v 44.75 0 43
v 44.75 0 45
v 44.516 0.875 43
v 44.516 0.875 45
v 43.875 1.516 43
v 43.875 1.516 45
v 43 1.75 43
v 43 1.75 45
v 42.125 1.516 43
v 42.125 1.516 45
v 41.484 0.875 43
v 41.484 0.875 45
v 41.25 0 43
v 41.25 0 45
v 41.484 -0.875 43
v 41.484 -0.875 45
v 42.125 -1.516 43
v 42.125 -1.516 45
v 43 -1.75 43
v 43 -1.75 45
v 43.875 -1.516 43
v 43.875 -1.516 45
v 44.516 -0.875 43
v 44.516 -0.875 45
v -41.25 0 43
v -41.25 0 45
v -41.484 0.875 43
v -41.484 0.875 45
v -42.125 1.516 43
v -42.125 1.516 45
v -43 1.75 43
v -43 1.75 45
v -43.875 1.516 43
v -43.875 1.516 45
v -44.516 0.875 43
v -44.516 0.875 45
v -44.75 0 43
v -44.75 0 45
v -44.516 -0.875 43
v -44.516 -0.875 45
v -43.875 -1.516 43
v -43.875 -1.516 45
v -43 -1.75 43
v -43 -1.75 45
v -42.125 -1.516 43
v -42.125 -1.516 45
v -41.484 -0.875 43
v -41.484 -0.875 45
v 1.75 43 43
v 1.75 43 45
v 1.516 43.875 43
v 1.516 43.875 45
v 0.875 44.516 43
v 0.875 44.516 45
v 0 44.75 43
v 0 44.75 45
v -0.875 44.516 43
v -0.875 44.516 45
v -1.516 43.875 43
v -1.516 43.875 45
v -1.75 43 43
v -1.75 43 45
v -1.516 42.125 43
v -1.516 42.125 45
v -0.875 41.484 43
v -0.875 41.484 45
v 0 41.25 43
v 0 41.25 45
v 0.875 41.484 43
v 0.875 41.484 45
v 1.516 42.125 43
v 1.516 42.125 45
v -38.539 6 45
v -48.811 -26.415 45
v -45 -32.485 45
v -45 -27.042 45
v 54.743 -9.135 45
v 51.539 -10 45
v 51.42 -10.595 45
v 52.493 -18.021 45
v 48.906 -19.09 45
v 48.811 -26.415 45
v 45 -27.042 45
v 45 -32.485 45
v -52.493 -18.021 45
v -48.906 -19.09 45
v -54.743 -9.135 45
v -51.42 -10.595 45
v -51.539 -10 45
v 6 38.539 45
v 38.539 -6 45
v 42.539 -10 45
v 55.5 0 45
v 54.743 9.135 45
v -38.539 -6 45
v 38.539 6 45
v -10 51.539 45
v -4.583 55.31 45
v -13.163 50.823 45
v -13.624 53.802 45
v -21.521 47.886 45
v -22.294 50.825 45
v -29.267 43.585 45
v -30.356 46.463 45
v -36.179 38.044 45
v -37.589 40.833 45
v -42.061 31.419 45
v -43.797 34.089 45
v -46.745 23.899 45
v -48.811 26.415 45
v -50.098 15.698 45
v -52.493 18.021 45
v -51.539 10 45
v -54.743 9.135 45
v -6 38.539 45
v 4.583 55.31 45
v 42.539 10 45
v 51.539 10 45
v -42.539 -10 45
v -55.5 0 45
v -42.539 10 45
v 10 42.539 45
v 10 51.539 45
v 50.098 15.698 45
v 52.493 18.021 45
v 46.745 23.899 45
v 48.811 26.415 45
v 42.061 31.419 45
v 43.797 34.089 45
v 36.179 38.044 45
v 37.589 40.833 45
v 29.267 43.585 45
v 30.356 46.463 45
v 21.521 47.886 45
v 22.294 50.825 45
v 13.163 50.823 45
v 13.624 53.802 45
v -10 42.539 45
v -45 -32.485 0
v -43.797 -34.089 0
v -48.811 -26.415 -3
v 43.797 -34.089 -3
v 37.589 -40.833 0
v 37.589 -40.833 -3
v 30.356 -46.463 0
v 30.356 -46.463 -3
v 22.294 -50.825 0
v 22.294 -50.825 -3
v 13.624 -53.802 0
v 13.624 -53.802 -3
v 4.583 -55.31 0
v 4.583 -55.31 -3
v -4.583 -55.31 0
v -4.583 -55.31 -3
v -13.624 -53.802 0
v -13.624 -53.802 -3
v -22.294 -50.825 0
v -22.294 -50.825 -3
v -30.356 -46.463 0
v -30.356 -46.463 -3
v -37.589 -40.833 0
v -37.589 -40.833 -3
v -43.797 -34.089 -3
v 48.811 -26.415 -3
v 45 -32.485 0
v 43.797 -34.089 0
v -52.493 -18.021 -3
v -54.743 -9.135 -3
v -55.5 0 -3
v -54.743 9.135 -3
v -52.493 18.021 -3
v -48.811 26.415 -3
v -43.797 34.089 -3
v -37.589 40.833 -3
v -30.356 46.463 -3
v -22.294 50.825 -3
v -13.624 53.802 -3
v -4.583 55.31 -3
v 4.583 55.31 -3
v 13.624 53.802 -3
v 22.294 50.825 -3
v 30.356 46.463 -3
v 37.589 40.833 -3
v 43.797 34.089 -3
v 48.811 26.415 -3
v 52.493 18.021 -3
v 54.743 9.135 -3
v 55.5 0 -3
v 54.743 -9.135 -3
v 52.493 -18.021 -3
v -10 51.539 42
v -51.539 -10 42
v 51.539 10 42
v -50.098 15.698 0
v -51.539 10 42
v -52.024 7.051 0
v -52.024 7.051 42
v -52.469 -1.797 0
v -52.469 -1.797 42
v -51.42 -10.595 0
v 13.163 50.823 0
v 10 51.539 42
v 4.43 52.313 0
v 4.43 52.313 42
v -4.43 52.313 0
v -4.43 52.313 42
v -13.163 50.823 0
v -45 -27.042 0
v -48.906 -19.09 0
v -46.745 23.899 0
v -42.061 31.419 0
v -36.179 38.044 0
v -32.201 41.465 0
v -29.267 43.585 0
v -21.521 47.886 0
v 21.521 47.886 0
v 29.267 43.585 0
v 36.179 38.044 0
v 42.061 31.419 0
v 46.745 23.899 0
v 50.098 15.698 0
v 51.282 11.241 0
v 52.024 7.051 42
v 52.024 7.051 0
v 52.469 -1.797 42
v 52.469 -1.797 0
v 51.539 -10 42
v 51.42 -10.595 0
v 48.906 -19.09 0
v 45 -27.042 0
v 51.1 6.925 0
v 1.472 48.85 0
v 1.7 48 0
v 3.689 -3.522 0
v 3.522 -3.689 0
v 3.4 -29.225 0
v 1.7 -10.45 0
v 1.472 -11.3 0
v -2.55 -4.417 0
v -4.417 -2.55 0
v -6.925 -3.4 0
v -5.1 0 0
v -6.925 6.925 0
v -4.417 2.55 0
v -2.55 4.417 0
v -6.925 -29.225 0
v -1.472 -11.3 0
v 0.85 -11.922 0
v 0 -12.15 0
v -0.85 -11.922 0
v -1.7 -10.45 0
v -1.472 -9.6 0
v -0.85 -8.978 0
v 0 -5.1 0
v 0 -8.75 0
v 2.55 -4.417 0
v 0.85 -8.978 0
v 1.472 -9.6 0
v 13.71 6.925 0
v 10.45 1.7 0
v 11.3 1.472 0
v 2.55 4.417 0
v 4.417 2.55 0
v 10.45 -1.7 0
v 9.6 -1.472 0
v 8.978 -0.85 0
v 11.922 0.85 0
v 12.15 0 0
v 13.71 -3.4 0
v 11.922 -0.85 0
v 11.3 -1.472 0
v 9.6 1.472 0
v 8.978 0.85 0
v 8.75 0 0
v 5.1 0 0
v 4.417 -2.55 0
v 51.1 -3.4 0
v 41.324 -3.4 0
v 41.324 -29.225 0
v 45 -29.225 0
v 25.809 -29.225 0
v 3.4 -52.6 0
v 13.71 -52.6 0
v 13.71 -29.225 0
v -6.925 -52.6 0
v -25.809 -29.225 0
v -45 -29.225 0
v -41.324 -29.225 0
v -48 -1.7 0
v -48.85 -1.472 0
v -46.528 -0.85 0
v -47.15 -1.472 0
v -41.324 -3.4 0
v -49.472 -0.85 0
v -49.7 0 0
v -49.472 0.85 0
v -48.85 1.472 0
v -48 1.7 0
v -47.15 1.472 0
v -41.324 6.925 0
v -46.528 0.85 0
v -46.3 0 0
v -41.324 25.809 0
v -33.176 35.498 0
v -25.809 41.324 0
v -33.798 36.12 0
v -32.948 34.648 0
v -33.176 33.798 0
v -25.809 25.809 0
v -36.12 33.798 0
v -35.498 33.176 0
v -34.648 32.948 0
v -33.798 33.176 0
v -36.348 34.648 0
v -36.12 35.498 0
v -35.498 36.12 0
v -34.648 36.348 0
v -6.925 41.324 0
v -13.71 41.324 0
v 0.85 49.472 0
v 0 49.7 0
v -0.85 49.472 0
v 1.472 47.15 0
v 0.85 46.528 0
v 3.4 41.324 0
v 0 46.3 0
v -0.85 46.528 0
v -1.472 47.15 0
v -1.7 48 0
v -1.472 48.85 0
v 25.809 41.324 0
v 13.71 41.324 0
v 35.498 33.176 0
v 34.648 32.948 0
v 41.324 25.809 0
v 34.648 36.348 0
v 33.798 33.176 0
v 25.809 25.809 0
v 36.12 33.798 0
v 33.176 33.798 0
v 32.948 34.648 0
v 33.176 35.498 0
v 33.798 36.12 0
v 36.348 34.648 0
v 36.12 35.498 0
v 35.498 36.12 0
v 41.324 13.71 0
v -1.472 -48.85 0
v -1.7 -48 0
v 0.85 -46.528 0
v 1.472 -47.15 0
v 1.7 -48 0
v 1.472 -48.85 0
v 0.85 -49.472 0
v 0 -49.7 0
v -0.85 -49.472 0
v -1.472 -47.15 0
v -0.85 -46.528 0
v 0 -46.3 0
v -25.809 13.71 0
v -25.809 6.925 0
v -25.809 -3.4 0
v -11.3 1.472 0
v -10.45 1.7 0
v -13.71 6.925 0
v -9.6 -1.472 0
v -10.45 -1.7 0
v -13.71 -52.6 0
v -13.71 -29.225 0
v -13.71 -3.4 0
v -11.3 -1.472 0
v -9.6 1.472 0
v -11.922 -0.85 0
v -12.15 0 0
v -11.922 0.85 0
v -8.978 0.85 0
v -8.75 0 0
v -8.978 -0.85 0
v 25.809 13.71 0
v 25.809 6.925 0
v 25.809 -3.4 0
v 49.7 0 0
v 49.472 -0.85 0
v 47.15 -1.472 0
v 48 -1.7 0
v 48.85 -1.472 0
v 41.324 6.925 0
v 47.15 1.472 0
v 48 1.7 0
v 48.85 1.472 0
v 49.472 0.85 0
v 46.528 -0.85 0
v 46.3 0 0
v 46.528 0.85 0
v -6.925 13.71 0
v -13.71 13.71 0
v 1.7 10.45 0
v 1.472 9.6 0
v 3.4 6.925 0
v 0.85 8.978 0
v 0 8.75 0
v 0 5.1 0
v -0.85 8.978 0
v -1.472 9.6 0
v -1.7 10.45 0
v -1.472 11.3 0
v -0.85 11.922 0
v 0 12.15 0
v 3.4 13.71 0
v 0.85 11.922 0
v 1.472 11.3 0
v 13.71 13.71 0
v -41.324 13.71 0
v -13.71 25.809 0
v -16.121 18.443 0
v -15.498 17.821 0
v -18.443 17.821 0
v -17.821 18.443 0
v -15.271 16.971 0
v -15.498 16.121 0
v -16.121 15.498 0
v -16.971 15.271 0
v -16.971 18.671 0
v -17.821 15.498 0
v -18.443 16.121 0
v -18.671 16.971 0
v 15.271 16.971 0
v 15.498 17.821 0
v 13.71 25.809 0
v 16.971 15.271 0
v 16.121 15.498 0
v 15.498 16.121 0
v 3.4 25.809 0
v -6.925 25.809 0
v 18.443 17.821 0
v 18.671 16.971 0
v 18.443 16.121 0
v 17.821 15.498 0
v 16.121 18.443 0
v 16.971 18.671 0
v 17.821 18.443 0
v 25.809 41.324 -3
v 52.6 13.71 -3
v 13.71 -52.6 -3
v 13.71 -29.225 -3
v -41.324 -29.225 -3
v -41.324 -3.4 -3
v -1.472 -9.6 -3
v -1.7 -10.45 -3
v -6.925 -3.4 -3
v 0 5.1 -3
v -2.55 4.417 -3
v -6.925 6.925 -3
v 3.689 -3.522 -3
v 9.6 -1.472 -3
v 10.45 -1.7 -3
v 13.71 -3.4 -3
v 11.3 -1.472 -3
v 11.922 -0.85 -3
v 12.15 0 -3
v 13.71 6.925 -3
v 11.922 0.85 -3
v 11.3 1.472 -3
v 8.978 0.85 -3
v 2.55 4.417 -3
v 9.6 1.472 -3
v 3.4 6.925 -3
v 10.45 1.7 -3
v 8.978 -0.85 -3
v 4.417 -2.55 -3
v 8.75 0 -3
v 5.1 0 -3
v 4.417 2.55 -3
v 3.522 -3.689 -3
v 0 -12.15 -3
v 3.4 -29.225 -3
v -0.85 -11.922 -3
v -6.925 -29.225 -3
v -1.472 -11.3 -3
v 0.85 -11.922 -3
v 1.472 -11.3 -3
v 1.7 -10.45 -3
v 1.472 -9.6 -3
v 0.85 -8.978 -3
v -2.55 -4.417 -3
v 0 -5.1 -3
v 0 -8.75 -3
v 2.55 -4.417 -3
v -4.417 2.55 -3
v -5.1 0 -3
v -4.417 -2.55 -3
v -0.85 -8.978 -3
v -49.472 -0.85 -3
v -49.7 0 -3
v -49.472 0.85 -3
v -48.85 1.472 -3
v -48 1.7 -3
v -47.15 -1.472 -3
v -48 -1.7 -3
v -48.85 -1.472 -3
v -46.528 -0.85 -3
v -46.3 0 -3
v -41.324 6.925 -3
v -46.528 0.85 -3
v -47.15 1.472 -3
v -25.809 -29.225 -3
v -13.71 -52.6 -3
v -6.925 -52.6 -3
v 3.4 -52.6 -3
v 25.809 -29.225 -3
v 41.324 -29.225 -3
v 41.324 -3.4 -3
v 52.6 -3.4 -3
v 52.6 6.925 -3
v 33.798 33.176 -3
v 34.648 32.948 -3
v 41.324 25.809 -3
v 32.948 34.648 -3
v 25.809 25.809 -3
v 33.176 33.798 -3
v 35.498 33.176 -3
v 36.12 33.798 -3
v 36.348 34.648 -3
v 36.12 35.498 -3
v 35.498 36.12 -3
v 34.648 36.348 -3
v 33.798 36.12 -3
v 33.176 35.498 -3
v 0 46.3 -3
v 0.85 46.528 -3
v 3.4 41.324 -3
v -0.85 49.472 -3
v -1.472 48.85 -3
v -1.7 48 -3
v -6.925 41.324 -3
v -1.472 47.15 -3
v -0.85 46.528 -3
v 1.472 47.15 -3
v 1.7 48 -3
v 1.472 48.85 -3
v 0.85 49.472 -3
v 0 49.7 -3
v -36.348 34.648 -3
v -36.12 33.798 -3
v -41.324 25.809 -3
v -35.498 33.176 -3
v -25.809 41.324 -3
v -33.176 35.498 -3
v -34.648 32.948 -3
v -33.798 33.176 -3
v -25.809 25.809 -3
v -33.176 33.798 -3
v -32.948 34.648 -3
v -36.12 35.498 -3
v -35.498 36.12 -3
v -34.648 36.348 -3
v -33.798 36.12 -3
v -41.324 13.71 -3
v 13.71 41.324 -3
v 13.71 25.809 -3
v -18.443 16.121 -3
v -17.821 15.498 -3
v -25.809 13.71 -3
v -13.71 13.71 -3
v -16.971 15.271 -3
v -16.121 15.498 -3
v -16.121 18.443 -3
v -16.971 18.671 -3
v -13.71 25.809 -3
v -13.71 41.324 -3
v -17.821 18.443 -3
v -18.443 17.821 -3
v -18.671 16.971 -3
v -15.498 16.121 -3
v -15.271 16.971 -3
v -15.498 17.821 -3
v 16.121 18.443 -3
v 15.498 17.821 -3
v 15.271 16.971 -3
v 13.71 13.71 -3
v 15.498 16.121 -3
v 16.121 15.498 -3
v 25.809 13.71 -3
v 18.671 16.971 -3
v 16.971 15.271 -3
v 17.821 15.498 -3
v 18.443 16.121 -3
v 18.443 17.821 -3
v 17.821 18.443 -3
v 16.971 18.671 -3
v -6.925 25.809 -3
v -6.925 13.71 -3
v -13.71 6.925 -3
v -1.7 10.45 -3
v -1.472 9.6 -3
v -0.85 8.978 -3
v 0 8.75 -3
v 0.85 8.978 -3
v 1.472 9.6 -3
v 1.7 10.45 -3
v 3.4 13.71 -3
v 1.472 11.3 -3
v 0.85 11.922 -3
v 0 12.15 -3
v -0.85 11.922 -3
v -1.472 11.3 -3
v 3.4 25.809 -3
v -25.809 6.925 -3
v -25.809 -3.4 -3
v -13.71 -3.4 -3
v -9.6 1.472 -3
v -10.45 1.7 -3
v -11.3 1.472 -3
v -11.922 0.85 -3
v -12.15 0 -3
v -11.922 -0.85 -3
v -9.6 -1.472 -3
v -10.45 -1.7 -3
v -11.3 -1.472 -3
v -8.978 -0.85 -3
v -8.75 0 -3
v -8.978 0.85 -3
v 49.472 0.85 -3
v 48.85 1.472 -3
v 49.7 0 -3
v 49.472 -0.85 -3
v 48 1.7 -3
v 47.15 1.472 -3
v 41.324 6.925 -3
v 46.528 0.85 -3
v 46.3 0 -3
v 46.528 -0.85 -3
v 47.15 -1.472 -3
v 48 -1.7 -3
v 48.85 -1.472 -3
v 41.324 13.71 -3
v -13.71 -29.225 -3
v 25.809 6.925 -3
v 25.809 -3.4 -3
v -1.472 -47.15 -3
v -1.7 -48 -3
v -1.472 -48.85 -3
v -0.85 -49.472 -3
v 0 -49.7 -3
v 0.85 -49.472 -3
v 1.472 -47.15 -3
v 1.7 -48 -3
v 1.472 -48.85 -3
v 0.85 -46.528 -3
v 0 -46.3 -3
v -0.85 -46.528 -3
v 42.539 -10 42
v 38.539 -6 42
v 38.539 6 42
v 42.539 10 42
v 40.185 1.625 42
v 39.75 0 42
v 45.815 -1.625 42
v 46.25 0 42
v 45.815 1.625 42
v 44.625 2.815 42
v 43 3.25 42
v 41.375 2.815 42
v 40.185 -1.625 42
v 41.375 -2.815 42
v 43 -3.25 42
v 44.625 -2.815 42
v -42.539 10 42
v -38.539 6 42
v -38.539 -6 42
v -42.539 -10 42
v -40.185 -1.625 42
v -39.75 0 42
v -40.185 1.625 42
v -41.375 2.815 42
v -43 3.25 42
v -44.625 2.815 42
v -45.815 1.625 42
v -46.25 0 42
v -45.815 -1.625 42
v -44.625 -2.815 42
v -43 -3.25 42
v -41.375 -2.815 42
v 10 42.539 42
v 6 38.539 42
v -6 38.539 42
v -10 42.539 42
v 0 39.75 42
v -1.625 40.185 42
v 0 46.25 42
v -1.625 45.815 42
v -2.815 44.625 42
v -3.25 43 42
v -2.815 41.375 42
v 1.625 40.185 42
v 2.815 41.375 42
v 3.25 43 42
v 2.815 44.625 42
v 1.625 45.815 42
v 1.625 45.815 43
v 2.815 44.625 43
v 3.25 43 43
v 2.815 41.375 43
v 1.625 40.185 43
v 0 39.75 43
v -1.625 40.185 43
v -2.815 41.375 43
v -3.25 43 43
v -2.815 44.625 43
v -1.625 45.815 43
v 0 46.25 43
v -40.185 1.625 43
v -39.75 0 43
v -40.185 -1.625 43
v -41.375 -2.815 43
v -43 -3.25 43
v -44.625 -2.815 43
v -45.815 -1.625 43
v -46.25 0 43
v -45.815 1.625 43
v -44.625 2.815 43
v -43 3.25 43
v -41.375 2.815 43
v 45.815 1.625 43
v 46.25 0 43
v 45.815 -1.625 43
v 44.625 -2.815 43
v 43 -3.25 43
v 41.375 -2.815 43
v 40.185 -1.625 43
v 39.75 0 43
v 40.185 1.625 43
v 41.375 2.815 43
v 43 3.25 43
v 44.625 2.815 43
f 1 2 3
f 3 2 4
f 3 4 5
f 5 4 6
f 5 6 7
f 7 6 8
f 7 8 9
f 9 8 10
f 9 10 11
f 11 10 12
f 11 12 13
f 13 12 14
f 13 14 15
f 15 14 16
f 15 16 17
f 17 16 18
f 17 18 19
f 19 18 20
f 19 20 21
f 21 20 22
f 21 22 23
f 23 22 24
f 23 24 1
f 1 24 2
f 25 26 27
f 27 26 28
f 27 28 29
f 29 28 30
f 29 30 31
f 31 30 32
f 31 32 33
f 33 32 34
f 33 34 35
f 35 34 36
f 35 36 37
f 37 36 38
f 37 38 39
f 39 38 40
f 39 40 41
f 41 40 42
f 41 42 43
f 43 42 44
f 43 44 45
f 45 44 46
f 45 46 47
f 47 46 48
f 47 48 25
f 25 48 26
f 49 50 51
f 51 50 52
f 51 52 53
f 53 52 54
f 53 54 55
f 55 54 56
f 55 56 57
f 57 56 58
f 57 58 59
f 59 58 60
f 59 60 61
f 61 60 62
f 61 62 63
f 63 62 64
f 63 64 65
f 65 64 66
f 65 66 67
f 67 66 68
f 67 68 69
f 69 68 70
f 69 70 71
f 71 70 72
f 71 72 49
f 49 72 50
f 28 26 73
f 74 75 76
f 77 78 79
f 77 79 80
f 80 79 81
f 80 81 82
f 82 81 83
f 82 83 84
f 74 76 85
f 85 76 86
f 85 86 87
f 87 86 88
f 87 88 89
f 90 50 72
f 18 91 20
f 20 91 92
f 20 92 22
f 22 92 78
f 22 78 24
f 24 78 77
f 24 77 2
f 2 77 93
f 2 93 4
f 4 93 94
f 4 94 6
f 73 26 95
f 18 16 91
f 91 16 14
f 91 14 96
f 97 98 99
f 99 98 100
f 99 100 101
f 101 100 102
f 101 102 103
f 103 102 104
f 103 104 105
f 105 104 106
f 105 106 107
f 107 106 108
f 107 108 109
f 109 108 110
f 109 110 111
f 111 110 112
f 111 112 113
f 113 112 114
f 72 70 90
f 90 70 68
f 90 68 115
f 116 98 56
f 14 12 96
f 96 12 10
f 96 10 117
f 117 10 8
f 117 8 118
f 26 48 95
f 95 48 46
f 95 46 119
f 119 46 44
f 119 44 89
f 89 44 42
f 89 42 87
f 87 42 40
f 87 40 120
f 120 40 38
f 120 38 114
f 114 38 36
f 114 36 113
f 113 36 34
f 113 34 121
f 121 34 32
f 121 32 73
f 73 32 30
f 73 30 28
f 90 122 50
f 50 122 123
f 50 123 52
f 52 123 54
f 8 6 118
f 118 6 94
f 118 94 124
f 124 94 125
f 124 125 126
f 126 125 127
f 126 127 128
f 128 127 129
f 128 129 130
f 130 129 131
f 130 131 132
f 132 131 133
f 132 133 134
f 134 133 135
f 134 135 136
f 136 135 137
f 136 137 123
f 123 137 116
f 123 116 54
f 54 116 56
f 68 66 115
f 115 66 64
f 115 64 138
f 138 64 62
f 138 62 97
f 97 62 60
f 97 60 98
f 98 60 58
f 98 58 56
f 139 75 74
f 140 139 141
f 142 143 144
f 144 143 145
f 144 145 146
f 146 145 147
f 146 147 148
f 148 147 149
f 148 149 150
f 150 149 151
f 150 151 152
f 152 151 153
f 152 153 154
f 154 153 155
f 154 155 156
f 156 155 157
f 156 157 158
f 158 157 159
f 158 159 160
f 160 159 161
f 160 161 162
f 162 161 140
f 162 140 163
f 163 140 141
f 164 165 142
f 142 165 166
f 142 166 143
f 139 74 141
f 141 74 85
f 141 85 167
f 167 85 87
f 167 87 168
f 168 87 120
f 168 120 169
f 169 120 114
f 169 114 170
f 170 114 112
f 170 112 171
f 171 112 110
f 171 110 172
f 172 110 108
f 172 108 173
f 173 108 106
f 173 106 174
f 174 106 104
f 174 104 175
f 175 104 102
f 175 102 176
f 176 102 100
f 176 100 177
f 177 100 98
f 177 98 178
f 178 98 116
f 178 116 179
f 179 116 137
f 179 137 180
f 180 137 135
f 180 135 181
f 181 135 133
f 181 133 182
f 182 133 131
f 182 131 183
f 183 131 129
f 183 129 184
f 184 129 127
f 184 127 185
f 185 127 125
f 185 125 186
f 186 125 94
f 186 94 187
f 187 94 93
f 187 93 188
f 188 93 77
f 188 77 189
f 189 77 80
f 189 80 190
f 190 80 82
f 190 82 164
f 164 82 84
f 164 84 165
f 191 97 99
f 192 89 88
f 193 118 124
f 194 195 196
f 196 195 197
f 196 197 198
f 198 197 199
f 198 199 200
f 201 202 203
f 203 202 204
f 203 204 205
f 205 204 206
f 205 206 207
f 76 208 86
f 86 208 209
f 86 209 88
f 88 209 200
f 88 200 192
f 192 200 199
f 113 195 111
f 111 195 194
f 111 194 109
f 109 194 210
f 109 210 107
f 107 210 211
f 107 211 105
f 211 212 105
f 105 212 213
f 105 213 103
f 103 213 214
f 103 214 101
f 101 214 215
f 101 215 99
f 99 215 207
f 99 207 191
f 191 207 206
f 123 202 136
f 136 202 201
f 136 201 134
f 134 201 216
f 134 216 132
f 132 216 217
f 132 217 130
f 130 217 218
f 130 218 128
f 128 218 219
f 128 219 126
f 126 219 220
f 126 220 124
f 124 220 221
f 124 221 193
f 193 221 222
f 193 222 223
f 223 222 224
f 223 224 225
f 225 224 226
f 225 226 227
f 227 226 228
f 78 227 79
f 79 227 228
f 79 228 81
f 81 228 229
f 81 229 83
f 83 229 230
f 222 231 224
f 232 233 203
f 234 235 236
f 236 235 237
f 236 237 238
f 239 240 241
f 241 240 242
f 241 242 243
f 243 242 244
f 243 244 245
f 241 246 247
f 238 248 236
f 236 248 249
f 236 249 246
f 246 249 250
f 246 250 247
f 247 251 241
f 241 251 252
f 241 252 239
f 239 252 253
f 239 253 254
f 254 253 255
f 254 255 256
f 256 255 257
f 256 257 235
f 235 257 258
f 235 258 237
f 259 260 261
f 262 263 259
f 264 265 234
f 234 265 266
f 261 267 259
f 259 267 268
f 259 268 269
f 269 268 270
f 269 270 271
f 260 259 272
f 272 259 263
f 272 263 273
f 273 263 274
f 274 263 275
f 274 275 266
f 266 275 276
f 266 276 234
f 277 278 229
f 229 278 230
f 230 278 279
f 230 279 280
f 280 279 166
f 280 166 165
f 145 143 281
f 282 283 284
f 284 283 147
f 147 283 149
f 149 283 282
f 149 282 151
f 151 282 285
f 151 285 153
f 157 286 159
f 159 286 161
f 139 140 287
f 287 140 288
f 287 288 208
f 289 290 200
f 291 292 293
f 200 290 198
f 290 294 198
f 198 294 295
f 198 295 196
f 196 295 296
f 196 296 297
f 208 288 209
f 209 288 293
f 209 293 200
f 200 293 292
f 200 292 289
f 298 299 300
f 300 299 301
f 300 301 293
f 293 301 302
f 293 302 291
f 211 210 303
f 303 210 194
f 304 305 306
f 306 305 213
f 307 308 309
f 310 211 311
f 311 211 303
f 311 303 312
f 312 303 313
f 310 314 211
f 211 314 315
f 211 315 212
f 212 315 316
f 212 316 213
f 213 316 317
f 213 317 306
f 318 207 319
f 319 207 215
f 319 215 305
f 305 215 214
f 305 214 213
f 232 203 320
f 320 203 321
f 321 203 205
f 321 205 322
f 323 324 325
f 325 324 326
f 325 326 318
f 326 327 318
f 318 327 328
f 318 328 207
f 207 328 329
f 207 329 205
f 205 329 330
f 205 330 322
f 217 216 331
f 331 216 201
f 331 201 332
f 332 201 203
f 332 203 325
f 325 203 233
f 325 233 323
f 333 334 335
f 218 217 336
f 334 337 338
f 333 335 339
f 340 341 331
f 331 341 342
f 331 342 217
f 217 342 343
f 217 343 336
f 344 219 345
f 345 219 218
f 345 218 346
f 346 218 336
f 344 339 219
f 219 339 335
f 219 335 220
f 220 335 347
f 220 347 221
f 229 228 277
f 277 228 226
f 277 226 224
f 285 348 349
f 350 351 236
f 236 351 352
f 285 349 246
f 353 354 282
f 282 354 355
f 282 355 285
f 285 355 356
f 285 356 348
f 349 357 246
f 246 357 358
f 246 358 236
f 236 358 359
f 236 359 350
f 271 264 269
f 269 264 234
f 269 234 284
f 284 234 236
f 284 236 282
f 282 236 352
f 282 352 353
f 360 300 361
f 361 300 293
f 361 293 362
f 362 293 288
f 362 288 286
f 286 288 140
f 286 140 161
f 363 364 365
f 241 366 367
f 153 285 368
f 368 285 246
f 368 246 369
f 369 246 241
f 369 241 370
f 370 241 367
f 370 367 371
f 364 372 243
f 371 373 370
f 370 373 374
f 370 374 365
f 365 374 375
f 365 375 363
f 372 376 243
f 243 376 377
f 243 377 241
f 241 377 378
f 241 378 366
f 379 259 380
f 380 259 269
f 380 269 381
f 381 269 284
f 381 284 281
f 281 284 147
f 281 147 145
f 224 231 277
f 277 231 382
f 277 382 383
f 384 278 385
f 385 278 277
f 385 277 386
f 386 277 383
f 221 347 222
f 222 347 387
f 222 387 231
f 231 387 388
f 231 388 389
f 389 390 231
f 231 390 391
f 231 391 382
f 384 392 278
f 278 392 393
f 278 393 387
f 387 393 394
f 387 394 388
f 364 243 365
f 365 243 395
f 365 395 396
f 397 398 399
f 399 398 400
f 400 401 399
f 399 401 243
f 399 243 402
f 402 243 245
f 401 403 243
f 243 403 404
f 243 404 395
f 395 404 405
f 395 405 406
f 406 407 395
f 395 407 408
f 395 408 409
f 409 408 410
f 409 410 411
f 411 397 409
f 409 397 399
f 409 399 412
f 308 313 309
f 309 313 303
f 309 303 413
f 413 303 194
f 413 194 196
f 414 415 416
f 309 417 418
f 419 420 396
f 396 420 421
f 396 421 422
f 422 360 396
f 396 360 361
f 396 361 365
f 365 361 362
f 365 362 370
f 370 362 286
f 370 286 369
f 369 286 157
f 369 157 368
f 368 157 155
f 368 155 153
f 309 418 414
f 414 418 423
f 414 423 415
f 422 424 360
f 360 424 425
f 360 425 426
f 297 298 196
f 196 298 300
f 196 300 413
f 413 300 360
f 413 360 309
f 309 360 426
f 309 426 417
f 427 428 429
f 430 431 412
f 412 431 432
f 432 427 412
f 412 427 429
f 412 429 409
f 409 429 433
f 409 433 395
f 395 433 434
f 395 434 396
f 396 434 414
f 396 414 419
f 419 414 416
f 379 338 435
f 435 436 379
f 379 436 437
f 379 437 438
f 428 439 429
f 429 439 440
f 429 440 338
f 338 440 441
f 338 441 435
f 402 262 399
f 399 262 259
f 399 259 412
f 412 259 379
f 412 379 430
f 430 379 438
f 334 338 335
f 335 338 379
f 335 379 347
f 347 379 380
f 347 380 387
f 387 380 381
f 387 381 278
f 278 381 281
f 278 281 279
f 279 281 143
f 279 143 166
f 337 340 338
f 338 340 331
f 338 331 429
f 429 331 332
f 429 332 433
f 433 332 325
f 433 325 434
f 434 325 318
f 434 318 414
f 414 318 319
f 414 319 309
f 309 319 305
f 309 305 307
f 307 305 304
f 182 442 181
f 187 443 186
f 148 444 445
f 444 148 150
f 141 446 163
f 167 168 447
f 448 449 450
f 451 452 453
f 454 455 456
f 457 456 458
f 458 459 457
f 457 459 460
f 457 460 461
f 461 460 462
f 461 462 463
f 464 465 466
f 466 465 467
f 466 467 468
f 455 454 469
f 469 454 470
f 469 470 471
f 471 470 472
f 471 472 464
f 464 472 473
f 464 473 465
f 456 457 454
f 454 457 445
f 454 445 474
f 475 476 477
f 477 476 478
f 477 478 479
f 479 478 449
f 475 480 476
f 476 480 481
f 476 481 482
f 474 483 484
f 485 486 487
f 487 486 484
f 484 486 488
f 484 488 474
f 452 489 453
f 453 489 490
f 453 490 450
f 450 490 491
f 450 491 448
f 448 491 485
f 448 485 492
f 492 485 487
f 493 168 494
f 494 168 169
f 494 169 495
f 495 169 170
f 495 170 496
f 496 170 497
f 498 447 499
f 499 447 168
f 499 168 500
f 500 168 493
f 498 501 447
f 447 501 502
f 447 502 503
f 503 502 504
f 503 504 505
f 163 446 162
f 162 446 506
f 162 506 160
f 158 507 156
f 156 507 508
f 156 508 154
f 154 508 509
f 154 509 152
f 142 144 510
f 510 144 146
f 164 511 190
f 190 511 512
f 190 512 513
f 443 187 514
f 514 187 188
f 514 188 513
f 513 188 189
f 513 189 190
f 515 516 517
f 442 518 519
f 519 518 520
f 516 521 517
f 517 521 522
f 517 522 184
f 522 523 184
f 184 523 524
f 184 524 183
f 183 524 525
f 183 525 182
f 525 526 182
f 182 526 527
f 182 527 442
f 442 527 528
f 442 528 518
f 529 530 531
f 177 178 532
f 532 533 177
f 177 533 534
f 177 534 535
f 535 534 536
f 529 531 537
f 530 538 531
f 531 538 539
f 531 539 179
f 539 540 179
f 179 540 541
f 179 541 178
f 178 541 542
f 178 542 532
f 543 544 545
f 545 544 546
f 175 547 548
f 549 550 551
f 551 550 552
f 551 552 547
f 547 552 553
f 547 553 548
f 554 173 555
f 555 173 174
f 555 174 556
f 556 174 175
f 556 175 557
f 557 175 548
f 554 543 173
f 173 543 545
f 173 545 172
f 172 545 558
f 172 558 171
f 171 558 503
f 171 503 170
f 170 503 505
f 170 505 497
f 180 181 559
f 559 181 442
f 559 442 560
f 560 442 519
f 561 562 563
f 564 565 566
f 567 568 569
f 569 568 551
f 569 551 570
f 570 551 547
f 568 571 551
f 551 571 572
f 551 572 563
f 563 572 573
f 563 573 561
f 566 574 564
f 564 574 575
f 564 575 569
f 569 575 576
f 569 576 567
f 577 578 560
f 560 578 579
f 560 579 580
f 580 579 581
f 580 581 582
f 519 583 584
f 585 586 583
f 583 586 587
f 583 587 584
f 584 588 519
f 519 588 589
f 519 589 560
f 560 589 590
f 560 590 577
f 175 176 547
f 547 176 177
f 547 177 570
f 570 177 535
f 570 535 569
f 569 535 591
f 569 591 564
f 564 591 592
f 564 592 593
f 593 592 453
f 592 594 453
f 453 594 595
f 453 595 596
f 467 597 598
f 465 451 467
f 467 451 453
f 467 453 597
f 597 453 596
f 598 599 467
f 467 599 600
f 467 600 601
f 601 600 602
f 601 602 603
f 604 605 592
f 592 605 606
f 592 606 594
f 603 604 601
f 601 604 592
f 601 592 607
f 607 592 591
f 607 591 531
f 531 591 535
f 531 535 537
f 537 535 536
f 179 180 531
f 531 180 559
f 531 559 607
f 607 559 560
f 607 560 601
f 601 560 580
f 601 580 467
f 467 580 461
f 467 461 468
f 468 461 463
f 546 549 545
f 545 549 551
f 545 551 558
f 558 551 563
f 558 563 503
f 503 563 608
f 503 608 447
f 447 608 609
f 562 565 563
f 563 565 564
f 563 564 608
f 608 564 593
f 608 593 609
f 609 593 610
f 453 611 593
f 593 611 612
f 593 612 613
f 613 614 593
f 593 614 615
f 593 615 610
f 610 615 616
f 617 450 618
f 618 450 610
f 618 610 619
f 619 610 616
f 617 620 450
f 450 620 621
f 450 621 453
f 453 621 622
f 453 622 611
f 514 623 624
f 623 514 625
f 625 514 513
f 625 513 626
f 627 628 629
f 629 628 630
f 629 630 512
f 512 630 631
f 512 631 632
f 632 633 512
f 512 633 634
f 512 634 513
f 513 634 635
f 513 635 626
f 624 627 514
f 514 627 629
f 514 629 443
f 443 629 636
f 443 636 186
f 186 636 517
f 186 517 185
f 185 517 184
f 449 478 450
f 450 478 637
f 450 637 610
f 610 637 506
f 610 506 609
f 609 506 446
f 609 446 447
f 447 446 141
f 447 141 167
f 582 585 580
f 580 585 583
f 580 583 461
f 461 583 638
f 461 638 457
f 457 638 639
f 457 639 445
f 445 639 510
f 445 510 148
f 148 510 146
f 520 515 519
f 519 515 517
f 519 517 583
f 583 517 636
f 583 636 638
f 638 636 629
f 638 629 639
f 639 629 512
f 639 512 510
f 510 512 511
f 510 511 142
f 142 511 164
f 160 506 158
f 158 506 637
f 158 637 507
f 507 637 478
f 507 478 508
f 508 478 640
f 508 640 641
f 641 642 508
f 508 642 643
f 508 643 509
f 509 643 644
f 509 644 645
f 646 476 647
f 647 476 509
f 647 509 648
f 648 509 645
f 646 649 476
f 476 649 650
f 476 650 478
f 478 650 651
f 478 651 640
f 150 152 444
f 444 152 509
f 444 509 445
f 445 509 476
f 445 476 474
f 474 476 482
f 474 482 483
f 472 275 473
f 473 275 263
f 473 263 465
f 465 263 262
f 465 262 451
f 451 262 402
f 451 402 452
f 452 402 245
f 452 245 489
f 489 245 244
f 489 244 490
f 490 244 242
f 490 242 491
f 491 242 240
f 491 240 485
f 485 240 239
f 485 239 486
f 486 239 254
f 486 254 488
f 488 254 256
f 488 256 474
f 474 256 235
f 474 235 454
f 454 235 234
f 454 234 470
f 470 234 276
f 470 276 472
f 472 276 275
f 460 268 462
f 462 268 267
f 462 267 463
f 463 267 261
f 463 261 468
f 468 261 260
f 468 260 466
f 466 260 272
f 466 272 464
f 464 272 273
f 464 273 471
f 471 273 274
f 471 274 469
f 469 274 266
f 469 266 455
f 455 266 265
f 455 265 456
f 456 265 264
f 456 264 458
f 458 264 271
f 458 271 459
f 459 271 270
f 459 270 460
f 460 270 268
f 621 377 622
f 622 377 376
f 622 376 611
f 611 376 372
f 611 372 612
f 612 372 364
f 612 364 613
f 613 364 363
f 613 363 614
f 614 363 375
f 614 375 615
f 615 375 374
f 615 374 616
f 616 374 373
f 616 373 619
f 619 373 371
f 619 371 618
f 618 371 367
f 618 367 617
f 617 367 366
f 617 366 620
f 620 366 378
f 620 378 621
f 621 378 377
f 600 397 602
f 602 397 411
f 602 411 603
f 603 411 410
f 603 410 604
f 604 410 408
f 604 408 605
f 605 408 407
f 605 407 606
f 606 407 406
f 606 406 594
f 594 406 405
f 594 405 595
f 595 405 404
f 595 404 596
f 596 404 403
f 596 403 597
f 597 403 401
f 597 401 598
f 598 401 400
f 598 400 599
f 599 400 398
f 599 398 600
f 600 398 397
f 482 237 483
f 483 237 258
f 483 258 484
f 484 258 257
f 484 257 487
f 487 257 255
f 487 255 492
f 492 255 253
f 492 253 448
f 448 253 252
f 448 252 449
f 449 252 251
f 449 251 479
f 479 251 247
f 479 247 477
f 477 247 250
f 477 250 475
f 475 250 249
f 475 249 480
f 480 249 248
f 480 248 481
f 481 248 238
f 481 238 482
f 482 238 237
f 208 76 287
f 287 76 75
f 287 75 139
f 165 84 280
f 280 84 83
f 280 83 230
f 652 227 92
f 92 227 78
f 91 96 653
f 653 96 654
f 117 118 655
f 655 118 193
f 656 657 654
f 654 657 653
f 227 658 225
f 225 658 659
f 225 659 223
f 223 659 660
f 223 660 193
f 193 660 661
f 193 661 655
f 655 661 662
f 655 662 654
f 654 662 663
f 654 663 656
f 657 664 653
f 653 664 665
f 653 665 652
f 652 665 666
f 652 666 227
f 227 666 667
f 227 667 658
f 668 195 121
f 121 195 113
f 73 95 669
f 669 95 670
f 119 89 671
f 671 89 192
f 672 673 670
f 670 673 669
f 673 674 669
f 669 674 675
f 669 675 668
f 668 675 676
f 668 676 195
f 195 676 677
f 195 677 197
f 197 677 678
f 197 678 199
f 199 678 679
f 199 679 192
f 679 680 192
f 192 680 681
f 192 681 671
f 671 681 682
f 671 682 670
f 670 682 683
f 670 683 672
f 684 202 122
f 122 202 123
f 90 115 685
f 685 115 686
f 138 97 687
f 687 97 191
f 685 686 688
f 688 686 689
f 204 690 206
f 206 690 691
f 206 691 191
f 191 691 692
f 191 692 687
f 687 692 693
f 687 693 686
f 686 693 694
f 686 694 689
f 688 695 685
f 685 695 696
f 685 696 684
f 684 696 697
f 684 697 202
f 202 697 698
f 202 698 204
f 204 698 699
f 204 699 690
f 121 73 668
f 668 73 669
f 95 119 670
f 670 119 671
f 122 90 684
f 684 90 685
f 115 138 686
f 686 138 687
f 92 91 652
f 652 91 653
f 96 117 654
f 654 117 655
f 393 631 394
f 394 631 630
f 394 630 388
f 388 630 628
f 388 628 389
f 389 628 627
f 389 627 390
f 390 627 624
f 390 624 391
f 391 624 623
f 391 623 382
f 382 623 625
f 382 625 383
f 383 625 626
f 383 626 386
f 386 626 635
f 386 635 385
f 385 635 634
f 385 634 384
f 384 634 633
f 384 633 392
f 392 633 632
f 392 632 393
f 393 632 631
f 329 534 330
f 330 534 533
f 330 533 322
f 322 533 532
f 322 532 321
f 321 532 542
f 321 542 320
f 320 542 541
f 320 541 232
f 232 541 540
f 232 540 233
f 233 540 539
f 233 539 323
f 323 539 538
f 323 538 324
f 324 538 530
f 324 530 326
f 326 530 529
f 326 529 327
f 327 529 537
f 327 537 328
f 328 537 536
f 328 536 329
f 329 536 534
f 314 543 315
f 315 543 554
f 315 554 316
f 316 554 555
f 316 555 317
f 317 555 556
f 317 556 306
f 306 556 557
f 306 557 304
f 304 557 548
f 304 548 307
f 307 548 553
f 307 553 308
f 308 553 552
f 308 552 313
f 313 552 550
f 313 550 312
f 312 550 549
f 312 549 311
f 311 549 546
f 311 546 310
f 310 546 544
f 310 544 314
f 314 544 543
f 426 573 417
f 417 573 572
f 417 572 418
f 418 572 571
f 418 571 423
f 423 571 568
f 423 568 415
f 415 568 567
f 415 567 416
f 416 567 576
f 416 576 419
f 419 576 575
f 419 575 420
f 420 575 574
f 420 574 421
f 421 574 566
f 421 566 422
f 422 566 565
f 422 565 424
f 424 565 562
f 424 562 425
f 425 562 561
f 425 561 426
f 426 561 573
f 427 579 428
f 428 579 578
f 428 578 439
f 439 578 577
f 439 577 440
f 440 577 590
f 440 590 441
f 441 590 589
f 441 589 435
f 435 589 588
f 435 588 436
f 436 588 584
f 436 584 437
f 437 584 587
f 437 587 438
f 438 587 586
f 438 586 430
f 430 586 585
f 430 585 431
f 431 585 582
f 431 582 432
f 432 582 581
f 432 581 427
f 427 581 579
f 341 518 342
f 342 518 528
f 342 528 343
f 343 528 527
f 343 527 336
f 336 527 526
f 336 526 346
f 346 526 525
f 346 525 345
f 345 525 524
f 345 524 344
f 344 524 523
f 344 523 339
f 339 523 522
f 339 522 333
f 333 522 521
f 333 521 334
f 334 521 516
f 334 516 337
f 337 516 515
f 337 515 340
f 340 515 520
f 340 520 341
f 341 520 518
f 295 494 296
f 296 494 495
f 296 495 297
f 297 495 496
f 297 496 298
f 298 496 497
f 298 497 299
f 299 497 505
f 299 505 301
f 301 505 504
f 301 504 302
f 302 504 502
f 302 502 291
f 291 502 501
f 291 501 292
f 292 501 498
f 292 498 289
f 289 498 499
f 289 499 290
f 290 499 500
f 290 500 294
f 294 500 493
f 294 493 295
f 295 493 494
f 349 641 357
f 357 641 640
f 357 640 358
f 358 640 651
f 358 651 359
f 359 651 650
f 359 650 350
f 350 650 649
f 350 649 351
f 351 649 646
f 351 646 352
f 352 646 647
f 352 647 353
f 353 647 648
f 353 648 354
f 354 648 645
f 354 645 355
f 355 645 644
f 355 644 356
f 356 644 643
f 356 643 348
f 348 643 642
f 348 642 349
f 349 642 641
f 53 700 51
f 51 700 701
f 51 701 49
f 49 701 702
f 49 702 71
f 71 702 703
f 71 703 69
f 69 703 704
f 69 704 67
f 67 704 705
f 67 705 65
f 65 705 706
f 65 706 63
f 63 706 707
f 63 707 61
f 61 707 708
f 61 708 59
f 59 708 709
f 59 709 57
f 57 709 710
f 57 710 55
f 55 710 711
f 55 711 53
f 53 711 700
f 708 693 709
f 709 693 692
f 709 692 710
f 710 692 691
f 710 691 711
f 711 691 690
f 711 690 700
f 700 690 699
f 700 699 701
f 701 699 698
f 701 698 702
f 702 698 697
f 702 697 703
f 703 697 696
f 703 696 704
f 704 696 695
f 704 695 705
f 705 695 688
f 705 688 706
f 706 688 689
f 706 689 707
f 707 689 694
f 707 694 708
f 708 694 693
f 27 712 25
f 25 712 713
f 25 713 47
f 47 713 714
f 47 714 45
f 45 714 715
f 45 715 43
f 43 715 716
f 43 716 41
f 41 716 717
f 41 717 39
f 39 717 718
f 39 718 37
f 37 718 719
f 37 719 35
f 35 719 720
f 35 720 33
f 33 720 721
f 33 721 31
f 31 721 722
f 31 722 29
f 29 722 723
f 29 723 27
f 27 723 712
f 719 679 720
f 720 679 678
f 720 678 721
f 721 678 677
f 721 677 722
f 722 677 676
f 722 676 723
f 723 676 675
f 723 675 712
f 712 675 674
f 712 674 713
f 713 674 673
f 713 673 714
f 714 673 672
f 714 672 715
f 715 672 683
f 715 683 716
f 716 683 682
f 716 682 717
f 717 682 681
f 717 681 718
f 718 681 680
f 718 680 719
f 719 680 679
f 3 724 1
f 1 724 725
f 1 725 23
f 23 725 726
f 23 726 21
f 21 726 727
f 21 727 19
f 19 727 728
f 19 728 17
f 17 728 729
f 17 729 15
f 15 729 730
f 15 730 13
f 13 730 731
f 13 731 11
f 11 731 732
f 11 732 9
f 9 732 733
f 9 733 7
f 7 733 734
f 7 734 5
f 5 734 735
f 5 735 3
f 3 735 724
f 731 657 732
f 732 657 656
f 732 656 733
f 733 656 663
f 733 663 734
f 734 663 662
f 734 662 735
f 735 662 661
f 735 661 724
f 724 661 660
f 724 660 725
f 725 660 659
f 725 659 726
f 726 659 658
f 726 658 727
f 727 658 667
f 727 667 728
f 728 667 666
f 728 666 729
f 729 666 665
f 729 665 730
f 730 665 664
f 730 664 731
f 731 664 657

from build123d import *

# Parameters (mm, degrees)
SKETCH1_R           = 55.5
SKETCH1_R_2         = 52.5
BOSS_EXTRUDE1_DEPTH = 45
BOSS_EXTRUDE2_START = 3
SKETCH2_R           = 55.5
SKETCH2_R_2         = 5.1
SKETCH2_R_3         = 1.7
BOSS_EXTRUDE2_DEPTH = 3
SKETCH3_W           = 90
SKETCH3_H           = 75.046354864
CUT_EXTRUDE1_DEPTH  = 91.4737531
BOSS_EXTRUDE3_START = -3
SKETCH4_R           = 1.75
BOSS_EXTRUDE3_DEPTH = 3
CHAMFER1_SIZE       = 4
SKETCH8_R           = 1.7
CUT_EXTRUDE2_DEPTH  = 10
SKETCH9_R           = 3.25
CUT_EXTRUDE3_DEPTH  = 1


with BuildPart() as part:
    # Sketch1 → Boss-Extrude1 (new body)
    with BuildSketch(Plane.XY):
        with Locations(Location((0, 0, 0), (0, 0, 180))):
            Circle(SKETCH1_R)
        with Locations(Location((0, 0, 0), (0, 0, 180))):
            Circle(SKETCH1_R_2, mode=Mode.SUBTRACT)
    extrude(amount=BOSS_EXTRUDE1_DEPTH)

    # Sketch2 → Boss-Extrude2 (add)
    with BuildSketch(Plane(origin=(0, 0, 0), x_dir=(-1, 0, 0), z_dir=(0, 0, -1)).offset(BOSS_EXTRUDE2_START)):
        Circle(SKETCH2_R)
        Circle(SKETCH2_R_2, mode=Mode.SUBTRACT)
        with Locations((-10.45, 0)):
            Circle(SKETCH2_R_3, mode=Mode.SUBTRACT)
        with Locations((10.45, 0)):
            Circle(SKETCH2_R_3, mode=Mode.SUBTRACT)
        with Locations((0, 10.45)):
            Circle(SKETCH2_R_3, mode=Mode.SUBTRACT)
        with Locations((0, -10.45)):
            Circle(SKETCH2_R_3, mode=Mode.SUBTRACT)
    extrude(amount=-BOSS_EXTRUDE2_DEPTH)

    # Sketch3 → Cut-Extrude1 (cut, through all)
    with BuildSketch(Plane(origin=(0, 0, 0), x_dir=(1, 0, 0), z_dir=(0, 1, 0))):
        with Locations((0, -37.523177432)):
            Rectangle(SKETCH3_W, SKETCH3_H)
    extrude(amount=-CUT_EXTRUDE1_DEPTH, mode=Mode.SUBTRACT)

    # Sketch4 → Boss-Extrude3 (add)
    # profile 1 of 3: a face of its own
    with BuildSketch(Plane.XY.offset(45).offset(BOSS_EXTRUDE3_START)):
        with BuildLine():
            Line((51.53882032, -10), (38.53882032, -10))
            Line((38.53882032, -10), (38.53882032, 10))
            Line((38.53882032, 10), (51.53882032, 10))
            ThreePointArc((51.53882032, 10), (52.5, 0), (51.53882032, -10))
        make_face()
        with Locations((43, 0)):
            Circle(SKETCH4_R, mode=Mode.SUBTRACT)
    # profile 2 of 3: a face of its own
    with BuildSketch(Plane.XY.offset(45).offset(BOSS_EXTRUDE3_START)):
        with BuildLine():
            Line((-51.53882032, 10), (-38.53882032, 10))
            Line((-38.53882032, 10), (-38.53882032, -10))
            Line((-38.53882032, -10), (-51.53882032, -10))
            ThreePointArc((-51.53882032, -10), (-52.5, 0), (-51.53882032, 10))
        make_face()
        with Locations((-43, 0)):
            Circle(SKETCH4_R, mode=Mode.SUBTRACT)
    # profile 3 of 3: a face of its own
    with BuildSketch(Plane.XY.offset(45).offset(BOSS_EXTRUDE3_START)):
        with BuildLine():
            Line((10, 51.53882032), (10, 38.53882032))
            Line((10, 38.53882032), (-10, 38.53882032))
            Line((-10, 38.53882032), (-10, 51.53882032))
            ThreePointArc((-10, 51.53882032), (0, 52.5), (10, 51.53882032))
        make_face()
        with Locations((0, 43)):
            Circle(SKETCH4_R, mode=Mode.SUBTRACT)
    extrude(amount=BOSS_EXTRUDE3_DEPTH)

    # Chamfer1
    chamfer1_edges = [part.edges().sort_by_distance(p)[0] for p in [
        (38.53882032, -10, 43.5),
        (38.53882032, 10, 43.5),
        (-38.53882032, 10, 43.5),
        (-38.53882032, -10, 43.5),
        (10, 38.53882032, 43.5),
        (-10, 38.53882032, 43.5),
    ]]
    chamfer(chamfer1_edges, length=CHAMFER1_SIZE)

    # Sketch8 → Cut-Extrude2 (cut)
    with BuildSketch(Plane(origin=(0, 0, -3), x_dir=(-1, 0, 0), z_dir=(0, 0, -1))):
        with Locations((34.648232278, 34.648232278)):
            Circle(SKETCH8_R)
        with Locations((16.970562748, 16.970562748)):
            Circle(SKETCH8_R)
        with Locations((-16.970562748, 16.970562748)):
            Circle(SKETCH8_R)
        with Locations((-34.648232278, 34.648232278)):
            Circle(SKETCH8_R)
        with Locations((0, -48)):
            Circle(SKETCH8_R)
        with Locations((-48, 0)):
            Circle(SKETCH8_R)
        with Locations((0, 48)):
            Circle(SKETCH8_R)
        with Locations((48, 0)):
            Circle(SKETCH8_R)
    extrude(amount=-CUT_EXTRUDE2_DEPTH, mode=Mode.SUBTRACT)

    # Sketch9 → Cut-Extrude3 (cut)
    with BuildSketch(Plane(origin=(0, 0, 42), x_dir=(-1, 0, 0), z_dir=(0, 0, -1))):
        with Locations((-43, 0)):
            Circle(SKETCH9_R)
        with Locations((0, 43)):
            Circle(SKETCH9_R)
        with Locations((43, 0)):
            Circle(SKETCH9_R)
    extrude(amount=-CUT_EXTRUDE3_DEPTH, mode=Mode.SUBTRACT)


solid = part.part
